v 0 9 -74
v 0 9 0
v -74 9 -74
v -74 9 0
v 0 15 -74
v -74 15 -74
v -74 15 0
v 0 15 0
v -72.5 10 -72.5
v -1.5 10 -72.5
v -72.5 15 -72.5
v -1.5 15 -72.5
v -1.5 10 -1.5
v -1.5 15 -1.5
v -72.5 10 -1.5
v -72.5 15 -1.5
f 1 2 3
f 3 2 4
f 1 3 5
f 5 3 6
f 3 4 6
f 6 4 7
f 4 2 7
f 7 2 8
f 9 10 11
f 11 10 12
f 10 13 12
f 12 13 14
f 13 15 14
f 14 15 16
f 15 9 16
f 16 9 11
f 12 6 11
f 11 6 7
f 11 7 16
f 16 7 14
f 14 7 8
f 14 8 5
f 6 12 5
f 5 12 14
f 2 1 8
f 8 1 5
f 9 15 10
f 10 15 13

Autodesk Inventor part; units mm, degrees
ref_plane "YZ Plane" through (0, 0, 0) normal (1, 0, 0) x (0, 1, 0)
ref_plane "XZ Plane" through (0, 0, 0) normal (0, 1, 0) x (-1, 0, 0)
ref_plane "XY Plane" through (0, 0, 0) normal (0, 0, 1) x (1, 0, 0)
sketch "Sketch1" plane through (0, 0, 0) normal (0, 1, 0) x (-1, 0, 0)
  line L0 (0, 0) -> (74, 0)
  line L1 (74, 0) -> (74, -74)
  line L2 (74, -74) -> (0, -74)
  line L3 (0, -74) -> (0, 0)
  dimension "d0" = 74
  dimension "d1" = 74
extrude "Extrusion1" add sketch "Sketch1" along normal blind 10
sketch "Sketch2" plane through (0, 10, 0) normal (0, 1, 0) x (1, 0, 0)
  line L0 (0, 0) -> (0, 74) projected
  line L1 (0, 74) -> (-74, 74) projected
  line L2 (0, 0) -> (-74, 0)
  line L3 (-74, 0) -> (-74, 74)
  line L4 (-74, 74) -> (0, 74)
  line L5 (0, 74) -> (0, 0)
  line L6 (-72.5, 72.5) -> (-72.5, 1.5)
  line L7 (-72.5, 1.5) -> (-1.5, 1.5)
  line L8 (-1.5, 1.5) -> (-1.5, 72.5)
  line L9 (-1.5, 72.5) -> (-72.5, 72.5)
  dimension "d4" = 1.5
extrude "Extrusion2" add sketch "Sketch2" along normal blind 5
sketch "Sketch3" plane through (0, 0, 0) normal (0, -1, 0) x (1, 0, 0)
  line L0 (0, 0) -> (0, -74) projected
  line L1 (0, 0) -> (-74, 0)
  line L2 (-74, 0) -> (-74, -74)
  line L3 (-74, -74) -> (0, -74)
  line L4 (0, -74) -> (0, 0)
extrude "Extrusion3" cut sketch "Sketch3" against normal blind 5
sketch "Sketch4" plane through (0, 5, 0) normal (0, -1, 0) x (1, 0, 0)
  line L0 (0, -74) -> (-74, -74) projected
  line L1 (-74, 0) -> (0, 0) projected
  line L2 (-74, -74) -> (0, -74)
  line L3 (0, -74) -> (0, 0)
  line L4 (0, 0) -> (-74, 0)
  line L5 (-74, 0) -> (-74, -74)
extrude "Extrusion4" cut sketch "Sketch4" against normal blind 4
properties part number "DiffusorCapUltrathin"
